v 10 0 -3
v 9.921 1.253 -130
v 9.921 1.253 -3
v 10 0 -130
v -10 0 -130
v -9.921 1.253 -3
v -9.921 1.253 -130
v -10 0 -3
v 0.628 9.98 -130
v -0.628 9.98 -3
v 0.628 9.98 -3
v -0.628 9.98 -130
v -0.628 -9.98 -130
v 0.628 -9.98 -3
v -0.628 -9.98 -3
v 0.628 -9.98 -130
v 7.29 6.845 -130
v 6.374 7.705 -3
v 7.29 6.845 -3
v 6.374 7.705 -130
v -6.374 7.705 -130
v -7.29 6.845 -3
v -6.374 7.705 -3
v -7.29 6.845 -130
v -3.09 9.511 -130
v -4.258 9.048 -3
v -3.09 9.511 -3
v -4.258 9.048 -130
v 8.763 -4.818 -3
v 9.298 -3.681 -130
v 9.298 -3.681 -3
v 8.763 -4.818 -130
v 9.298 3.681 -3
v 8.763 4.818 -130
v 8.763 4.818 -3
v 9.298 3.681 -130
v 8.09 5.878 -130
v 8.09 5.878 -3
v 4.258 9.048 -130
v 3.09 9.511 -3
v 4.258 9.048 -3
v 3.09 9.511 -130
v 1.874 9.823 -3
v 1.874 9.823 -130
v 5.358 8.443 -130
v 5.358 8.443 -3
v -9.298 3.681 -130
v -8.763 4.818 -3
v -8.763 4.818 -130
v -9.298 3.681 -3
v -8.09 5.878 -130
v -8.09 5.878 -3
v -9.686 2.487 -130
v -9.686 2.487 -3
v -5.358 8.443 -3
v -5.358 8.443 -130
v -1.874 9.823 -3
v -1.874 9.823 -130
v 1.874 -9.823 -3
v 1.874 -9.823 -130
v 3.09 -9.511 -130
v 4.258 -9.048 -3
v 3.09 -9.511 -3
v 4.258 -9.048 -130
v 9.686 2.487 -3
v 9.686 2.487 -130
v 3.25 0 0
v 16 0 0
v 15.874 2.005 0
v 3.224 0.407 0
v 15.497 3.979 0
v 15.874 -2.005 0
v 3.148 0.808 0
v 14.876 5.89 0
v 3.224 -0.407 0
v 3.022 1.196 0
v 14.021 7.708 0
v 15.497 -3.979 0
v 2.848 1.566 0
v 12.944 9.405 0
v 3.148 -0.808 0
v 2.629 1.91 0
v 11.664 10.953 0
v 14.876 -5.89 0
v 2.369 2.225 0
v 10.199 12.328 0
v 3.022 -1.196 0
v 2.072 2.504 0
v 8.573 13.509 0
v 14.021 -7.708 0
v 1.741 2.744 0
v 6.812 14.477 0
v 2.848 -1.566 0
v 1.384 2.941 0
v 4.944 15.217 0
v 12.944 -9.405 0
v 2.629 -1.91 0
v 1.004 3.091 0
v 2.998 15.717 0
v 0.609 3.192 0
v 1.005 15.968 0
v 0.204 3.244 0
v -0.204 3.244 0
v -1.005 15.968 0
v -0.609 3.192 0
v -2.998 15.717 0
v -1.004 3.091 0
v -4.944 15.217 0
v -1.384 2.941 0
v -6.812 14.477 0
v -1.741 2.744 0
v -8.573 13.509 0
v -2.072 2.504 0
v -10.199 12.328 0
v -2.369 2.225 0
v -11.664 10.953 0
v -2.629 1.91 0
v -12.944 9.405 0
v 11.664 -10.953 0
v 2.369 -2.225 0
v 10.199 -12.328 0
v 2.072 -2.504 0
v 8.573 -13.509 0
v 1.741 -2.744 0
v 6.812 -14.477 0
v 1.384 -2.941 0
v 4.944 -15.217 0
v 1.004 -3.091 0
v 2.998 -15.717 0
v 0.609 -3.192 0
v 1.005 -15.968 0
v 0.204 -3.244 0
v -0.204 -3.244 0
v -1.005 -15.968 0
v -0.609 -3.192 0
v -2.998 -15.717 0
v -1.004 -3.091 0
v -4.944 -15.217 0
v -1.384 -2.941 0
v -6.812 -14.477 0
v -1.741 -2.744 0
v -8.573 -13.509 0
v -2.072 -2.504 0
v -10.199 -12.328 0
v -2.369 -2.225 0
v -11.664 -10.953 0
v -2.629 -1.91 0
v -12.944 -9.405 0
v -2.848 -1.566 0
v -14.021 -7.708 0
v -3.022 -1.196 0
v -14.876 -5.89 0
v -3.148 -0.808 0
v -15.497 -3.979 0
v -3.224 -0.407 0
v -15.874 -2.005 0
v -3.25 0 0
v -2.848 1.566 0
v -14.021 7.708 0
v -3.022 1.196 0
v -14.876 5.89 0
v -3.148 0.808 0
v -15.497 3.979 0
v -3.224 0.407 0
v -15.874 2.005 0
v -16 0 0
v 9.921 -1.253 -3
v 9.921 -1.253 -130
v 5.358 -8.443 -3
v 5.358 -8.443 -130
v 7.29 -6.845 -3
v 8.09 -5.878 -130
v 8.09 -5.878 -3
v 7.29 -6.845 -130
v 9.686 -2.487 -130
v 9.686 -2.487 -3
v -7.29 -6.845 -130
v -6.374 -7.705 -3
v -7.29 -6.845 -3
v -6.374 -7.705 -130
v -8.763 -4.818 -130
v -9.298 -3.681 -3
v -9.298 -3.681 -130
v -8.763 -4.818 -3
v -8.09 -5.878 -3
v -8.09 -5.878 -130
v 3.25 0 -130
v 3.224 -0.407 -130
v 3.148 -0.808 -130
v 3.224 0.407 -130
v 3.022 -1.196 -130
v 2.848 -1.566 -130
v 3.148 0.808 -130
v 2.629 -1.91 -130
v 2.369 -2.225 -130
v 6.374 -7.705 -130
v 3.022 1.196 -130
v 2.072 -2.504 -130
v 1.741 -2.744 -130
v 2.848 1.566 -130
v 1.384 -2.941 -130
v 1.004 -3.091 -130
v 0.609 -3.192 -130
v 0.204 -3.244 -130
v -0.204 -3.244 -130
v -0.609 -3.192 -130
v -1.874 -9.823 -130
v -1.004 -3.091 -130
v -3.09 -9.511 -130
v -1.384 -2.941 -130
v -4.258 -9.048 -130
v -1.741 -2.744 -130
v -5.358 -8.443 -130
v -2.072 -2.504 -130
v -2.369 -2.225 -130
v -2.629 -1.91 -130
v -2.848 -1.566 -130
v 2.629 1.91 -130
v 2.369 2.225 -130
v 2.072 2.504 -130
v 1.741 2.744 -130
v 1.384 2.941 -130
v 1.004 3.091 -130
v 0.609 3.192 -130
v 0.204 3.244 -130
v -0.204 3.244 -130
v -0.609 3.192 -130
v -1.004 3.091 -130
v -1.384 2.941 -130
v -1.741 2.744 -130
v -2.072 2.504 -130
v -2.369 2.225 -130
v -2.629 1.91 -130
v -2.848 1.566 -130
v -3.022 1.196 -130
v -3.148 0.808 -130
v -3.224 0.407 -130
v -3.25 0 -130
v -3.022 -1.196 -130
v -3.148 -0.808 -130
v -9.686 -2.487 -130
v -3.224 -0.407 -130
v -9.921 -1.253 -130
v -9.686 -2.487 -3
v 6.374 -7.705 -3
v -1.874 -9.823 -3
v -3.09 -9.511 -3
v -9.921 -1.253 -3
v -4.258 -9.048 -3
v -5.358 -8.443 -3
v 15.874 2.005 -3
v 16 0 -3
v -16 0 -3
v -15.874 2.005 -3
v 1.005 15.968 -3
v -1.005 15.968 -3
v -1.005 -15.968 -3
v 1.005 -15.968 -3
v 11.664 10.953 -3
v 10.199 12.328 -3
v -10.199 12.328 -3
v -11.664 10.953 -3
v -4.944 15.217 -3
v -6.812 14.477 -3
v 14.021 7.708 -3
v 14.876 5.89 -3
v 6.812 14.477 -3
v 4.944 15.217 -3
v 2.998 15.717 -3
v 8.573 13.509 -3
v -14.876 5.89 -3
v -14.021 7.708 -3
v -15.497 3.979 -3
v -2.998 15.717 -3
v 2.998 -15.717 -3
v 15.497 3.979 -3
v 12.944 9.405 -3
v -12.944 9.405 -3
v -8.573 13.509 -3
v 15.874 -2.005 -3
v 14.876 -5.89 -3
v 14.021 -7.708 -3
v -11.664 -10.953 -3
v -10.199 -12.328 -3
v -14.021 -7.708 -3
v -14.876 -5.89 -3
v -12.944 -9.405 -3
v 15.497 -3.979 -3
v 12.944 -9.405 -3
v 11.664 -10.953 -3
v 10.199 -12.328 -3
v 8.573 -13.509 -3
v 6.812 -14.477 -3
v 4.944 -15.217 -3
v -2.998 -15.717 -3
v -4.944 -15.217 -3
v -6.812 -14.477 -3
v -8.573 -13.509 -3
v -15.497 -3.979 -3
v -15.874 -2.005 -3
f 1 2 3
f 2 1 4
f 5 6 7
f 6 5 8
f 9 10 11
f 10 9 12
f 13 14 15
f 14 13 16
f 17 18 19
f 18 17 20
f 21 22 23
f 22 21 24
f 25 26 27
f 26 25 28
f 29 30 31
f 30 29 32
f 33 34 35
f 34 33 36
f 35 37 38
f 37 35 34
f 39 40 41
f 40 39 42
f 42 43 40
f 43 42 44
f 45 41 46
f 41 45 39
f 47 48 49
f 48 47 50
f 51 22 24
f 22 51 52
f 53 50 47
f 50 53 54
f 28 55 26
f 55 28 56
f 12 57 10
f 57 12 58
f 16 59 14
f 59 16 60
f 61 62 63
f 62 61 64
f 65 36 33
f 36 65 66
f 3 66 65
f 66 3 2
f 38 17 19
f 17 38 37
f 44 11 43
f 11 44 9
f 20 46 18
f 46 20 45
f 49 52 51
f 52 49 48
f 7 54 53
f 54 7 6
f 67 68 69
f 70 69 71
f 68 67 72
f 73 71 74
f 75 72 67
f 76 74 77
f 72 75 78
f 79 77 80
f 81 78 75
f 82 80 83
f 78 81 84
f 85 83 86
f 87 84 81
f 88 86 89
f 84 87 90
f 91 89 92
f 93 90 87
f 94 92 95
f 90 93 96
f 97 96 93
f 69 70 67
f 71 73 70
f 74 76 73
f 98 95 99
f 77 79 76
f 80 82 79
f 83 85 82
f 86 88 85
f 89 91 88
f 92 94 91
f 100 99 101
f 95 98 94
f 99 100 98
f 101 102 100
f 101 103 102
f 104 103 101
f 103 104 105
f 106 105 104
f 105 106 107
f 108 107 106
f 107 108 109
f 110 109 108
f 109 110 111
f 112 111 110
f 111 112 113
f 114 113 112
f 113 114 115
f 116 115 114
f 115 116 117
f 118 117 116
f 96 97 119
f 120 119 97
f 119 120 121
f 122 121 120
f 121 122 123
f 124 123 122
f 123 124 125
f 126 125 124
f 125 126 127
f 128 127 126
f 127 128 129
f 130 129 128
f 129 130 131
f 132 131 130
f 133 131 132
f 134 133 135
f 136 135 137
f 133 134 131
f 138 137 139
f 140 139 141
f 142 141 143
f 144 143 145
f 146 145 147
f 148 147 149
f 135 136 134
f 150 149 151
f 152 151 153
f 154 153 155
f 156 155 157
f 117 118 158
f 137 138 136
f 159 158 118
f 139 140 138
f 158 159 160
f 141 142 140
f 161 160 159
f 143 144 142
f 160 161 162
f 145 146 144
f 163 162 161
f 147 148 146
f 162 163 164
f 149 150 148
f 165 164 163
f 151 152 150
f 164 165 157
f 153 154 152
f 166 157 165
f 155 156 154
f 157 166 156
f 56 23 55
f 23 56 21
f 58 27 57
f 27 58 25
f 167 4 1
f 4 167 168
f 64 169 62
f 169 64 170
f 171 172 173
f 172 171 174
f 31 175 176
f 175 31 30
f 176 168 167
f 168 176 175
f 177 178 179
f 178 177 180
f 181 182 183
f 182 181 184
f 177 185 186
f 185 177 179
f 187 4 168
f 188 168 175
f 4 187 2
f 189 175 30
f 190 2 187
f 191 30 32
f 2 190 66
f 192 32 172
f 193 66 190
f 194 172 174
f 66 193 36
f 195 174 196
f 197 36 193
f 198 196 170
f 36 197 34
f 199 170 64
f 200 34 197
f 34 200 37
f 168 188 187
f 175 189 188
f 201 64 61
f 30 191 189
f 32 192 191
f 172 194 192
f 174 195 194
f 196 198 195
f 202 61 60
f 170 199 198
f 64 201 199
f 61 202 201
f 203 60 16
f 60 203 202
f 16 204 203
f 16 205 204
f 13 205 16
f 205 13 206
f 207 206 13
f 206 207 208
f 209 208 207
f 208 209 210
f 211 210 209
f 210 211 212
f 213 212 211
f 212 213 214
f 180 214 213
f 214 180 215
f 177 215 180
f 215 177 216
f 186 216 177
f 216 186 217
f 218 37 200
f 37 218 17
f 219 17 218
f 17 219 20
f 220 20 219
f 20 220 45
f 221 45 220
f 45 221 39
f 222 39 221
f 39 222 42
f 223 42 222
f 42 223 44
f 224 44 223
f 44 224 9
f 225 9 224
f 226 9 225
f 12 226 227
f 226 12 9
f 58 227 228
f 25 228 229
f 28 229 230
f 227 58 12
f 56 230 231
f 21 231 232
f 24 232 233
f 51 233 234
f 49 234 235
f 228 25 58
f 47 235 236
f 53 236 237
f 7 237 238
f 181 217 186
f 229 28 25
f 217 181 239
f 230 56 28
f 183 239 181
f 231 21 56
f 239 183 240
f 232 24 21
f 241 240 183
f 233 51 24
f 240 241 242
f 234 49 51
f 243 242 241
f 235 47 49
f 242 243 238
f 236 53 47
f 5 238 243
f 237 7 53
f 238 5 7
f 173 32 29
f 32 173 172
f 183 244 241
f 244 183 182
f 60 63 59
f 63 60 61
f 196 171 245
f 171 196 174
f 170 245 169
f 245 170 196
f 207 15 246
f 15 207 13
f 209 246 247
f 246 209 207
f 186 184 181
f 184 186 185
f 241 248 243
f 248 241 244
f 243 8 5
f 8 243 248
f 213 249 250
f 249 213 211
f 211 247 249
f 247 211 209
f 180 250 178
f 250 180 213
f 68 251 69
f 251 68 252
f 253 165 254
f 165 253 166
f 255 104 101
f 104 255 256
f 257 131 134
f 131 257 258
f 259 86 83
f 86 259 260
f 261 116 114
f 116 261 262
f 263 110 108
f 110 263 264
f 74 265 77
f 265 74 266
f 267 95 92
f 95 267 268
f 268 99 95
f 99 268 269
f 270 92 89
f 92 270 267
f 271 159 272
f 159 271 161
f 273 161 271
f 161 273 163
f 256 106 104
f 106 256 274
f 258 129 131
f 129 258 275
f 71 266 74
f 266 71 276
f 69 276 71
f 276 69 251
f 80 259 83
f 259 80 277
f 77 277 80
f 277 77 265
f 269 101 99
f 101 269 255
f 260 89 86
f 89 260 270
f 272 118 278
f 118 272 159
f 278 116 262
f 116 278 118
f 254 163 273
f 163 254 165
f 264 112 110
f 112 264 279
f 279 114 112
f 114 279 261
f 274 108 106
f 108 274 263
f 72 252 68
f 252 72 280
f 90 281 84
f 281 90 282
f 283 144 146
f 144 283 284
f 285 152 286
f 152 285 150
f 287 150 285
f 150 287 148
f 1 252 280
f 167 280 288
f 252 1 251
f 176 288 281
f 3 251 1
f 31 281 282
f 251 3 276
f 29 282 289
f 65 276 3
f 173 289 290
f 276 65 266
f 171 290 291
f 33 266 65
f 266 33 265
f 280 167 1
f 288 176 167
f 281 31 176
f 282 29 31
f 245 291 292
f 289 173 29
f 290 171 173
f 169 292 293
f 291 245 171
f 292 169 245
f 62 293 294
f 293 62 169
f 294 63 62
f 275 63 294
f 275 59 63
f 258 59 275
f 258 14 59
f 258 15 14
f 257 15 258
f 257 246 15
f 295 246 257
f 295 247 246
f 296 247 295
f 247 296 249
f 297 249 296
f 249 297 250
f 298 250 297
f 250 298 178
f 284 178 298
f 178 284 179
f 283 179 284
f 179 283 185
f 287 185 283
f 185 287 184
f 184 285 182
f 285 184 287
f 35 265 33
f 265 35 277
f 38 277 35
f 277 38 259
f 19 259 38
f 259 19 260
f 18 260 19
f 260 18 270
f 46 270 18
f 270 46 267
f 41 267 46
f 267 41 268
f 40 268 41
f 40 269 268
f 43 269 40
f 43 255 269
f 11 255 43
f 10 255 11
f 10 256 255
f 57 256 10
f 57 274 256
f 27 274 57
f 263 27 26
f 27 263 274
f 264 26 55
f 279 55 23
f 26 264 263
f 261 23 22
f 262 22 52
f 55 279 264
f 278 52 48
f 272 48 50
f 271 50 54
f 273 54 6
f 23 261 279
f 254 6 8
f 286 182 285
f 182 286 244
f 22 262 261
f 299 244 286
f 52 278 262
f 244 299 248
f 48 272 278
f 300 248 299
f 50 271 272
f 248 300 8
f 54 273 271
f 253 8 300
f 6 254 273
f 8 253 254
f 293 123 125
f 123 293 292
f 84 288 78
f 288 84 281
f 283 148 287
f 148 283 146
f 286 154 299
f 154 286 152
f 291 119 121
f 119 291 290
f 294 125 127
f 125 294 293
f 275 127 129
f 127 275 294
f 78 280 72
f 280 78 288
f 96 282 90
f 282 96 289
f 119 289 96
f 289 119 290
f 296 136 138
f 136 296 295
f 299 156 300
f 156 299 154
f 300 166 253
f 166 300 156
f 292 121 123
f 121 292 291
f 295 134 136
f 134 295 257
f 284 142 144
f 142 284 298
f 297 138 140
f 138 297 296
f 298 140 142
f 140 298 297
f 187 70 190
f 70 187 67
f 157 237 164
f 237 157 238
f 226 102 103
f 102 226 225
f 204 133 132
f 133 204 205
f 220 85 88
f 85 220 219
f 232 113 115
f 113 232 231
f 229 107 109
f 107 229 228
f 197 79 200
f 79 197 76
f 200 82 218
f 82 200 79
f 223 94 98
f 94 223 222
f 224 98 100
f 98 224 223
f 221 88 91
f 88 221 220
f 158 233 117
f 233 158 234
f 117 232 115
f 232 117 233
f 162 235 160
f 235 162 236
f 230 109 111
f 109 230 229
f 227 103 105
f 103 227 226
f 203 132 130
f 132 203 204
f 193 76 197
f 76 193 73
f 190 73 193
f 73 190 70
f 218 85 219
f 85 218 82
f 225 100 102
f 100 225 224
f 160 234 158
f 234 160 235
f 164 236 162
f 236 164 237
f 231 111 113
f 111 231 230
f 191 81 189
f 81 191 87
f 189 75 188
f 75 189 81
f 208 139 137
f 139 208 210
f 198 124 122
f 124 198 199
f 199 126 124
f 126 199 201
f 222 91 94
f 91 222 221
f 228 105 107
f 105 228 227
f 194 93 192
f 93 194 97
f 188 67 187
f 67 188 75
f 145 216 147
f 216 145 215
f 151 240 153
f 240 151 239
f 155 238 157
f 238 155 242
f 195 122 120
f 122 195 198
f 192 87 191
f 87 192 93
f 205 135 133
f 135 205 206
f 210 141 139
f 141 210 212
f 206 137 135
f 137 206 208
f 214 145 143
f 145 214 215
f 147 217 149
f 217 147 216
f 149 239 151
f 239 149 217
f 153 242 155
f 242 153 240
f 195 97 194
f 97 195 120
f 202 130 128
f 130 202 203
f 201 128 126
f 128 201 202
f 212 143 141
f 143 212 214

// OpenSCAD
$fn = 50;


difference() {
	union() {
		translate(v = [0, 0, -130.0000000000]) {
			cylinder(h = 130, r = 10.0000000000);
		}
		translate(v = [0, 0, -3.0000000000]) {
			cylinder(h = 3, r = 16.0000000000);
		}
	}
	union() {
		#translate(v = [0, 0, -130]) {
			cylinder(h = 130, r = 3.2500000000);
		}
	}
}
